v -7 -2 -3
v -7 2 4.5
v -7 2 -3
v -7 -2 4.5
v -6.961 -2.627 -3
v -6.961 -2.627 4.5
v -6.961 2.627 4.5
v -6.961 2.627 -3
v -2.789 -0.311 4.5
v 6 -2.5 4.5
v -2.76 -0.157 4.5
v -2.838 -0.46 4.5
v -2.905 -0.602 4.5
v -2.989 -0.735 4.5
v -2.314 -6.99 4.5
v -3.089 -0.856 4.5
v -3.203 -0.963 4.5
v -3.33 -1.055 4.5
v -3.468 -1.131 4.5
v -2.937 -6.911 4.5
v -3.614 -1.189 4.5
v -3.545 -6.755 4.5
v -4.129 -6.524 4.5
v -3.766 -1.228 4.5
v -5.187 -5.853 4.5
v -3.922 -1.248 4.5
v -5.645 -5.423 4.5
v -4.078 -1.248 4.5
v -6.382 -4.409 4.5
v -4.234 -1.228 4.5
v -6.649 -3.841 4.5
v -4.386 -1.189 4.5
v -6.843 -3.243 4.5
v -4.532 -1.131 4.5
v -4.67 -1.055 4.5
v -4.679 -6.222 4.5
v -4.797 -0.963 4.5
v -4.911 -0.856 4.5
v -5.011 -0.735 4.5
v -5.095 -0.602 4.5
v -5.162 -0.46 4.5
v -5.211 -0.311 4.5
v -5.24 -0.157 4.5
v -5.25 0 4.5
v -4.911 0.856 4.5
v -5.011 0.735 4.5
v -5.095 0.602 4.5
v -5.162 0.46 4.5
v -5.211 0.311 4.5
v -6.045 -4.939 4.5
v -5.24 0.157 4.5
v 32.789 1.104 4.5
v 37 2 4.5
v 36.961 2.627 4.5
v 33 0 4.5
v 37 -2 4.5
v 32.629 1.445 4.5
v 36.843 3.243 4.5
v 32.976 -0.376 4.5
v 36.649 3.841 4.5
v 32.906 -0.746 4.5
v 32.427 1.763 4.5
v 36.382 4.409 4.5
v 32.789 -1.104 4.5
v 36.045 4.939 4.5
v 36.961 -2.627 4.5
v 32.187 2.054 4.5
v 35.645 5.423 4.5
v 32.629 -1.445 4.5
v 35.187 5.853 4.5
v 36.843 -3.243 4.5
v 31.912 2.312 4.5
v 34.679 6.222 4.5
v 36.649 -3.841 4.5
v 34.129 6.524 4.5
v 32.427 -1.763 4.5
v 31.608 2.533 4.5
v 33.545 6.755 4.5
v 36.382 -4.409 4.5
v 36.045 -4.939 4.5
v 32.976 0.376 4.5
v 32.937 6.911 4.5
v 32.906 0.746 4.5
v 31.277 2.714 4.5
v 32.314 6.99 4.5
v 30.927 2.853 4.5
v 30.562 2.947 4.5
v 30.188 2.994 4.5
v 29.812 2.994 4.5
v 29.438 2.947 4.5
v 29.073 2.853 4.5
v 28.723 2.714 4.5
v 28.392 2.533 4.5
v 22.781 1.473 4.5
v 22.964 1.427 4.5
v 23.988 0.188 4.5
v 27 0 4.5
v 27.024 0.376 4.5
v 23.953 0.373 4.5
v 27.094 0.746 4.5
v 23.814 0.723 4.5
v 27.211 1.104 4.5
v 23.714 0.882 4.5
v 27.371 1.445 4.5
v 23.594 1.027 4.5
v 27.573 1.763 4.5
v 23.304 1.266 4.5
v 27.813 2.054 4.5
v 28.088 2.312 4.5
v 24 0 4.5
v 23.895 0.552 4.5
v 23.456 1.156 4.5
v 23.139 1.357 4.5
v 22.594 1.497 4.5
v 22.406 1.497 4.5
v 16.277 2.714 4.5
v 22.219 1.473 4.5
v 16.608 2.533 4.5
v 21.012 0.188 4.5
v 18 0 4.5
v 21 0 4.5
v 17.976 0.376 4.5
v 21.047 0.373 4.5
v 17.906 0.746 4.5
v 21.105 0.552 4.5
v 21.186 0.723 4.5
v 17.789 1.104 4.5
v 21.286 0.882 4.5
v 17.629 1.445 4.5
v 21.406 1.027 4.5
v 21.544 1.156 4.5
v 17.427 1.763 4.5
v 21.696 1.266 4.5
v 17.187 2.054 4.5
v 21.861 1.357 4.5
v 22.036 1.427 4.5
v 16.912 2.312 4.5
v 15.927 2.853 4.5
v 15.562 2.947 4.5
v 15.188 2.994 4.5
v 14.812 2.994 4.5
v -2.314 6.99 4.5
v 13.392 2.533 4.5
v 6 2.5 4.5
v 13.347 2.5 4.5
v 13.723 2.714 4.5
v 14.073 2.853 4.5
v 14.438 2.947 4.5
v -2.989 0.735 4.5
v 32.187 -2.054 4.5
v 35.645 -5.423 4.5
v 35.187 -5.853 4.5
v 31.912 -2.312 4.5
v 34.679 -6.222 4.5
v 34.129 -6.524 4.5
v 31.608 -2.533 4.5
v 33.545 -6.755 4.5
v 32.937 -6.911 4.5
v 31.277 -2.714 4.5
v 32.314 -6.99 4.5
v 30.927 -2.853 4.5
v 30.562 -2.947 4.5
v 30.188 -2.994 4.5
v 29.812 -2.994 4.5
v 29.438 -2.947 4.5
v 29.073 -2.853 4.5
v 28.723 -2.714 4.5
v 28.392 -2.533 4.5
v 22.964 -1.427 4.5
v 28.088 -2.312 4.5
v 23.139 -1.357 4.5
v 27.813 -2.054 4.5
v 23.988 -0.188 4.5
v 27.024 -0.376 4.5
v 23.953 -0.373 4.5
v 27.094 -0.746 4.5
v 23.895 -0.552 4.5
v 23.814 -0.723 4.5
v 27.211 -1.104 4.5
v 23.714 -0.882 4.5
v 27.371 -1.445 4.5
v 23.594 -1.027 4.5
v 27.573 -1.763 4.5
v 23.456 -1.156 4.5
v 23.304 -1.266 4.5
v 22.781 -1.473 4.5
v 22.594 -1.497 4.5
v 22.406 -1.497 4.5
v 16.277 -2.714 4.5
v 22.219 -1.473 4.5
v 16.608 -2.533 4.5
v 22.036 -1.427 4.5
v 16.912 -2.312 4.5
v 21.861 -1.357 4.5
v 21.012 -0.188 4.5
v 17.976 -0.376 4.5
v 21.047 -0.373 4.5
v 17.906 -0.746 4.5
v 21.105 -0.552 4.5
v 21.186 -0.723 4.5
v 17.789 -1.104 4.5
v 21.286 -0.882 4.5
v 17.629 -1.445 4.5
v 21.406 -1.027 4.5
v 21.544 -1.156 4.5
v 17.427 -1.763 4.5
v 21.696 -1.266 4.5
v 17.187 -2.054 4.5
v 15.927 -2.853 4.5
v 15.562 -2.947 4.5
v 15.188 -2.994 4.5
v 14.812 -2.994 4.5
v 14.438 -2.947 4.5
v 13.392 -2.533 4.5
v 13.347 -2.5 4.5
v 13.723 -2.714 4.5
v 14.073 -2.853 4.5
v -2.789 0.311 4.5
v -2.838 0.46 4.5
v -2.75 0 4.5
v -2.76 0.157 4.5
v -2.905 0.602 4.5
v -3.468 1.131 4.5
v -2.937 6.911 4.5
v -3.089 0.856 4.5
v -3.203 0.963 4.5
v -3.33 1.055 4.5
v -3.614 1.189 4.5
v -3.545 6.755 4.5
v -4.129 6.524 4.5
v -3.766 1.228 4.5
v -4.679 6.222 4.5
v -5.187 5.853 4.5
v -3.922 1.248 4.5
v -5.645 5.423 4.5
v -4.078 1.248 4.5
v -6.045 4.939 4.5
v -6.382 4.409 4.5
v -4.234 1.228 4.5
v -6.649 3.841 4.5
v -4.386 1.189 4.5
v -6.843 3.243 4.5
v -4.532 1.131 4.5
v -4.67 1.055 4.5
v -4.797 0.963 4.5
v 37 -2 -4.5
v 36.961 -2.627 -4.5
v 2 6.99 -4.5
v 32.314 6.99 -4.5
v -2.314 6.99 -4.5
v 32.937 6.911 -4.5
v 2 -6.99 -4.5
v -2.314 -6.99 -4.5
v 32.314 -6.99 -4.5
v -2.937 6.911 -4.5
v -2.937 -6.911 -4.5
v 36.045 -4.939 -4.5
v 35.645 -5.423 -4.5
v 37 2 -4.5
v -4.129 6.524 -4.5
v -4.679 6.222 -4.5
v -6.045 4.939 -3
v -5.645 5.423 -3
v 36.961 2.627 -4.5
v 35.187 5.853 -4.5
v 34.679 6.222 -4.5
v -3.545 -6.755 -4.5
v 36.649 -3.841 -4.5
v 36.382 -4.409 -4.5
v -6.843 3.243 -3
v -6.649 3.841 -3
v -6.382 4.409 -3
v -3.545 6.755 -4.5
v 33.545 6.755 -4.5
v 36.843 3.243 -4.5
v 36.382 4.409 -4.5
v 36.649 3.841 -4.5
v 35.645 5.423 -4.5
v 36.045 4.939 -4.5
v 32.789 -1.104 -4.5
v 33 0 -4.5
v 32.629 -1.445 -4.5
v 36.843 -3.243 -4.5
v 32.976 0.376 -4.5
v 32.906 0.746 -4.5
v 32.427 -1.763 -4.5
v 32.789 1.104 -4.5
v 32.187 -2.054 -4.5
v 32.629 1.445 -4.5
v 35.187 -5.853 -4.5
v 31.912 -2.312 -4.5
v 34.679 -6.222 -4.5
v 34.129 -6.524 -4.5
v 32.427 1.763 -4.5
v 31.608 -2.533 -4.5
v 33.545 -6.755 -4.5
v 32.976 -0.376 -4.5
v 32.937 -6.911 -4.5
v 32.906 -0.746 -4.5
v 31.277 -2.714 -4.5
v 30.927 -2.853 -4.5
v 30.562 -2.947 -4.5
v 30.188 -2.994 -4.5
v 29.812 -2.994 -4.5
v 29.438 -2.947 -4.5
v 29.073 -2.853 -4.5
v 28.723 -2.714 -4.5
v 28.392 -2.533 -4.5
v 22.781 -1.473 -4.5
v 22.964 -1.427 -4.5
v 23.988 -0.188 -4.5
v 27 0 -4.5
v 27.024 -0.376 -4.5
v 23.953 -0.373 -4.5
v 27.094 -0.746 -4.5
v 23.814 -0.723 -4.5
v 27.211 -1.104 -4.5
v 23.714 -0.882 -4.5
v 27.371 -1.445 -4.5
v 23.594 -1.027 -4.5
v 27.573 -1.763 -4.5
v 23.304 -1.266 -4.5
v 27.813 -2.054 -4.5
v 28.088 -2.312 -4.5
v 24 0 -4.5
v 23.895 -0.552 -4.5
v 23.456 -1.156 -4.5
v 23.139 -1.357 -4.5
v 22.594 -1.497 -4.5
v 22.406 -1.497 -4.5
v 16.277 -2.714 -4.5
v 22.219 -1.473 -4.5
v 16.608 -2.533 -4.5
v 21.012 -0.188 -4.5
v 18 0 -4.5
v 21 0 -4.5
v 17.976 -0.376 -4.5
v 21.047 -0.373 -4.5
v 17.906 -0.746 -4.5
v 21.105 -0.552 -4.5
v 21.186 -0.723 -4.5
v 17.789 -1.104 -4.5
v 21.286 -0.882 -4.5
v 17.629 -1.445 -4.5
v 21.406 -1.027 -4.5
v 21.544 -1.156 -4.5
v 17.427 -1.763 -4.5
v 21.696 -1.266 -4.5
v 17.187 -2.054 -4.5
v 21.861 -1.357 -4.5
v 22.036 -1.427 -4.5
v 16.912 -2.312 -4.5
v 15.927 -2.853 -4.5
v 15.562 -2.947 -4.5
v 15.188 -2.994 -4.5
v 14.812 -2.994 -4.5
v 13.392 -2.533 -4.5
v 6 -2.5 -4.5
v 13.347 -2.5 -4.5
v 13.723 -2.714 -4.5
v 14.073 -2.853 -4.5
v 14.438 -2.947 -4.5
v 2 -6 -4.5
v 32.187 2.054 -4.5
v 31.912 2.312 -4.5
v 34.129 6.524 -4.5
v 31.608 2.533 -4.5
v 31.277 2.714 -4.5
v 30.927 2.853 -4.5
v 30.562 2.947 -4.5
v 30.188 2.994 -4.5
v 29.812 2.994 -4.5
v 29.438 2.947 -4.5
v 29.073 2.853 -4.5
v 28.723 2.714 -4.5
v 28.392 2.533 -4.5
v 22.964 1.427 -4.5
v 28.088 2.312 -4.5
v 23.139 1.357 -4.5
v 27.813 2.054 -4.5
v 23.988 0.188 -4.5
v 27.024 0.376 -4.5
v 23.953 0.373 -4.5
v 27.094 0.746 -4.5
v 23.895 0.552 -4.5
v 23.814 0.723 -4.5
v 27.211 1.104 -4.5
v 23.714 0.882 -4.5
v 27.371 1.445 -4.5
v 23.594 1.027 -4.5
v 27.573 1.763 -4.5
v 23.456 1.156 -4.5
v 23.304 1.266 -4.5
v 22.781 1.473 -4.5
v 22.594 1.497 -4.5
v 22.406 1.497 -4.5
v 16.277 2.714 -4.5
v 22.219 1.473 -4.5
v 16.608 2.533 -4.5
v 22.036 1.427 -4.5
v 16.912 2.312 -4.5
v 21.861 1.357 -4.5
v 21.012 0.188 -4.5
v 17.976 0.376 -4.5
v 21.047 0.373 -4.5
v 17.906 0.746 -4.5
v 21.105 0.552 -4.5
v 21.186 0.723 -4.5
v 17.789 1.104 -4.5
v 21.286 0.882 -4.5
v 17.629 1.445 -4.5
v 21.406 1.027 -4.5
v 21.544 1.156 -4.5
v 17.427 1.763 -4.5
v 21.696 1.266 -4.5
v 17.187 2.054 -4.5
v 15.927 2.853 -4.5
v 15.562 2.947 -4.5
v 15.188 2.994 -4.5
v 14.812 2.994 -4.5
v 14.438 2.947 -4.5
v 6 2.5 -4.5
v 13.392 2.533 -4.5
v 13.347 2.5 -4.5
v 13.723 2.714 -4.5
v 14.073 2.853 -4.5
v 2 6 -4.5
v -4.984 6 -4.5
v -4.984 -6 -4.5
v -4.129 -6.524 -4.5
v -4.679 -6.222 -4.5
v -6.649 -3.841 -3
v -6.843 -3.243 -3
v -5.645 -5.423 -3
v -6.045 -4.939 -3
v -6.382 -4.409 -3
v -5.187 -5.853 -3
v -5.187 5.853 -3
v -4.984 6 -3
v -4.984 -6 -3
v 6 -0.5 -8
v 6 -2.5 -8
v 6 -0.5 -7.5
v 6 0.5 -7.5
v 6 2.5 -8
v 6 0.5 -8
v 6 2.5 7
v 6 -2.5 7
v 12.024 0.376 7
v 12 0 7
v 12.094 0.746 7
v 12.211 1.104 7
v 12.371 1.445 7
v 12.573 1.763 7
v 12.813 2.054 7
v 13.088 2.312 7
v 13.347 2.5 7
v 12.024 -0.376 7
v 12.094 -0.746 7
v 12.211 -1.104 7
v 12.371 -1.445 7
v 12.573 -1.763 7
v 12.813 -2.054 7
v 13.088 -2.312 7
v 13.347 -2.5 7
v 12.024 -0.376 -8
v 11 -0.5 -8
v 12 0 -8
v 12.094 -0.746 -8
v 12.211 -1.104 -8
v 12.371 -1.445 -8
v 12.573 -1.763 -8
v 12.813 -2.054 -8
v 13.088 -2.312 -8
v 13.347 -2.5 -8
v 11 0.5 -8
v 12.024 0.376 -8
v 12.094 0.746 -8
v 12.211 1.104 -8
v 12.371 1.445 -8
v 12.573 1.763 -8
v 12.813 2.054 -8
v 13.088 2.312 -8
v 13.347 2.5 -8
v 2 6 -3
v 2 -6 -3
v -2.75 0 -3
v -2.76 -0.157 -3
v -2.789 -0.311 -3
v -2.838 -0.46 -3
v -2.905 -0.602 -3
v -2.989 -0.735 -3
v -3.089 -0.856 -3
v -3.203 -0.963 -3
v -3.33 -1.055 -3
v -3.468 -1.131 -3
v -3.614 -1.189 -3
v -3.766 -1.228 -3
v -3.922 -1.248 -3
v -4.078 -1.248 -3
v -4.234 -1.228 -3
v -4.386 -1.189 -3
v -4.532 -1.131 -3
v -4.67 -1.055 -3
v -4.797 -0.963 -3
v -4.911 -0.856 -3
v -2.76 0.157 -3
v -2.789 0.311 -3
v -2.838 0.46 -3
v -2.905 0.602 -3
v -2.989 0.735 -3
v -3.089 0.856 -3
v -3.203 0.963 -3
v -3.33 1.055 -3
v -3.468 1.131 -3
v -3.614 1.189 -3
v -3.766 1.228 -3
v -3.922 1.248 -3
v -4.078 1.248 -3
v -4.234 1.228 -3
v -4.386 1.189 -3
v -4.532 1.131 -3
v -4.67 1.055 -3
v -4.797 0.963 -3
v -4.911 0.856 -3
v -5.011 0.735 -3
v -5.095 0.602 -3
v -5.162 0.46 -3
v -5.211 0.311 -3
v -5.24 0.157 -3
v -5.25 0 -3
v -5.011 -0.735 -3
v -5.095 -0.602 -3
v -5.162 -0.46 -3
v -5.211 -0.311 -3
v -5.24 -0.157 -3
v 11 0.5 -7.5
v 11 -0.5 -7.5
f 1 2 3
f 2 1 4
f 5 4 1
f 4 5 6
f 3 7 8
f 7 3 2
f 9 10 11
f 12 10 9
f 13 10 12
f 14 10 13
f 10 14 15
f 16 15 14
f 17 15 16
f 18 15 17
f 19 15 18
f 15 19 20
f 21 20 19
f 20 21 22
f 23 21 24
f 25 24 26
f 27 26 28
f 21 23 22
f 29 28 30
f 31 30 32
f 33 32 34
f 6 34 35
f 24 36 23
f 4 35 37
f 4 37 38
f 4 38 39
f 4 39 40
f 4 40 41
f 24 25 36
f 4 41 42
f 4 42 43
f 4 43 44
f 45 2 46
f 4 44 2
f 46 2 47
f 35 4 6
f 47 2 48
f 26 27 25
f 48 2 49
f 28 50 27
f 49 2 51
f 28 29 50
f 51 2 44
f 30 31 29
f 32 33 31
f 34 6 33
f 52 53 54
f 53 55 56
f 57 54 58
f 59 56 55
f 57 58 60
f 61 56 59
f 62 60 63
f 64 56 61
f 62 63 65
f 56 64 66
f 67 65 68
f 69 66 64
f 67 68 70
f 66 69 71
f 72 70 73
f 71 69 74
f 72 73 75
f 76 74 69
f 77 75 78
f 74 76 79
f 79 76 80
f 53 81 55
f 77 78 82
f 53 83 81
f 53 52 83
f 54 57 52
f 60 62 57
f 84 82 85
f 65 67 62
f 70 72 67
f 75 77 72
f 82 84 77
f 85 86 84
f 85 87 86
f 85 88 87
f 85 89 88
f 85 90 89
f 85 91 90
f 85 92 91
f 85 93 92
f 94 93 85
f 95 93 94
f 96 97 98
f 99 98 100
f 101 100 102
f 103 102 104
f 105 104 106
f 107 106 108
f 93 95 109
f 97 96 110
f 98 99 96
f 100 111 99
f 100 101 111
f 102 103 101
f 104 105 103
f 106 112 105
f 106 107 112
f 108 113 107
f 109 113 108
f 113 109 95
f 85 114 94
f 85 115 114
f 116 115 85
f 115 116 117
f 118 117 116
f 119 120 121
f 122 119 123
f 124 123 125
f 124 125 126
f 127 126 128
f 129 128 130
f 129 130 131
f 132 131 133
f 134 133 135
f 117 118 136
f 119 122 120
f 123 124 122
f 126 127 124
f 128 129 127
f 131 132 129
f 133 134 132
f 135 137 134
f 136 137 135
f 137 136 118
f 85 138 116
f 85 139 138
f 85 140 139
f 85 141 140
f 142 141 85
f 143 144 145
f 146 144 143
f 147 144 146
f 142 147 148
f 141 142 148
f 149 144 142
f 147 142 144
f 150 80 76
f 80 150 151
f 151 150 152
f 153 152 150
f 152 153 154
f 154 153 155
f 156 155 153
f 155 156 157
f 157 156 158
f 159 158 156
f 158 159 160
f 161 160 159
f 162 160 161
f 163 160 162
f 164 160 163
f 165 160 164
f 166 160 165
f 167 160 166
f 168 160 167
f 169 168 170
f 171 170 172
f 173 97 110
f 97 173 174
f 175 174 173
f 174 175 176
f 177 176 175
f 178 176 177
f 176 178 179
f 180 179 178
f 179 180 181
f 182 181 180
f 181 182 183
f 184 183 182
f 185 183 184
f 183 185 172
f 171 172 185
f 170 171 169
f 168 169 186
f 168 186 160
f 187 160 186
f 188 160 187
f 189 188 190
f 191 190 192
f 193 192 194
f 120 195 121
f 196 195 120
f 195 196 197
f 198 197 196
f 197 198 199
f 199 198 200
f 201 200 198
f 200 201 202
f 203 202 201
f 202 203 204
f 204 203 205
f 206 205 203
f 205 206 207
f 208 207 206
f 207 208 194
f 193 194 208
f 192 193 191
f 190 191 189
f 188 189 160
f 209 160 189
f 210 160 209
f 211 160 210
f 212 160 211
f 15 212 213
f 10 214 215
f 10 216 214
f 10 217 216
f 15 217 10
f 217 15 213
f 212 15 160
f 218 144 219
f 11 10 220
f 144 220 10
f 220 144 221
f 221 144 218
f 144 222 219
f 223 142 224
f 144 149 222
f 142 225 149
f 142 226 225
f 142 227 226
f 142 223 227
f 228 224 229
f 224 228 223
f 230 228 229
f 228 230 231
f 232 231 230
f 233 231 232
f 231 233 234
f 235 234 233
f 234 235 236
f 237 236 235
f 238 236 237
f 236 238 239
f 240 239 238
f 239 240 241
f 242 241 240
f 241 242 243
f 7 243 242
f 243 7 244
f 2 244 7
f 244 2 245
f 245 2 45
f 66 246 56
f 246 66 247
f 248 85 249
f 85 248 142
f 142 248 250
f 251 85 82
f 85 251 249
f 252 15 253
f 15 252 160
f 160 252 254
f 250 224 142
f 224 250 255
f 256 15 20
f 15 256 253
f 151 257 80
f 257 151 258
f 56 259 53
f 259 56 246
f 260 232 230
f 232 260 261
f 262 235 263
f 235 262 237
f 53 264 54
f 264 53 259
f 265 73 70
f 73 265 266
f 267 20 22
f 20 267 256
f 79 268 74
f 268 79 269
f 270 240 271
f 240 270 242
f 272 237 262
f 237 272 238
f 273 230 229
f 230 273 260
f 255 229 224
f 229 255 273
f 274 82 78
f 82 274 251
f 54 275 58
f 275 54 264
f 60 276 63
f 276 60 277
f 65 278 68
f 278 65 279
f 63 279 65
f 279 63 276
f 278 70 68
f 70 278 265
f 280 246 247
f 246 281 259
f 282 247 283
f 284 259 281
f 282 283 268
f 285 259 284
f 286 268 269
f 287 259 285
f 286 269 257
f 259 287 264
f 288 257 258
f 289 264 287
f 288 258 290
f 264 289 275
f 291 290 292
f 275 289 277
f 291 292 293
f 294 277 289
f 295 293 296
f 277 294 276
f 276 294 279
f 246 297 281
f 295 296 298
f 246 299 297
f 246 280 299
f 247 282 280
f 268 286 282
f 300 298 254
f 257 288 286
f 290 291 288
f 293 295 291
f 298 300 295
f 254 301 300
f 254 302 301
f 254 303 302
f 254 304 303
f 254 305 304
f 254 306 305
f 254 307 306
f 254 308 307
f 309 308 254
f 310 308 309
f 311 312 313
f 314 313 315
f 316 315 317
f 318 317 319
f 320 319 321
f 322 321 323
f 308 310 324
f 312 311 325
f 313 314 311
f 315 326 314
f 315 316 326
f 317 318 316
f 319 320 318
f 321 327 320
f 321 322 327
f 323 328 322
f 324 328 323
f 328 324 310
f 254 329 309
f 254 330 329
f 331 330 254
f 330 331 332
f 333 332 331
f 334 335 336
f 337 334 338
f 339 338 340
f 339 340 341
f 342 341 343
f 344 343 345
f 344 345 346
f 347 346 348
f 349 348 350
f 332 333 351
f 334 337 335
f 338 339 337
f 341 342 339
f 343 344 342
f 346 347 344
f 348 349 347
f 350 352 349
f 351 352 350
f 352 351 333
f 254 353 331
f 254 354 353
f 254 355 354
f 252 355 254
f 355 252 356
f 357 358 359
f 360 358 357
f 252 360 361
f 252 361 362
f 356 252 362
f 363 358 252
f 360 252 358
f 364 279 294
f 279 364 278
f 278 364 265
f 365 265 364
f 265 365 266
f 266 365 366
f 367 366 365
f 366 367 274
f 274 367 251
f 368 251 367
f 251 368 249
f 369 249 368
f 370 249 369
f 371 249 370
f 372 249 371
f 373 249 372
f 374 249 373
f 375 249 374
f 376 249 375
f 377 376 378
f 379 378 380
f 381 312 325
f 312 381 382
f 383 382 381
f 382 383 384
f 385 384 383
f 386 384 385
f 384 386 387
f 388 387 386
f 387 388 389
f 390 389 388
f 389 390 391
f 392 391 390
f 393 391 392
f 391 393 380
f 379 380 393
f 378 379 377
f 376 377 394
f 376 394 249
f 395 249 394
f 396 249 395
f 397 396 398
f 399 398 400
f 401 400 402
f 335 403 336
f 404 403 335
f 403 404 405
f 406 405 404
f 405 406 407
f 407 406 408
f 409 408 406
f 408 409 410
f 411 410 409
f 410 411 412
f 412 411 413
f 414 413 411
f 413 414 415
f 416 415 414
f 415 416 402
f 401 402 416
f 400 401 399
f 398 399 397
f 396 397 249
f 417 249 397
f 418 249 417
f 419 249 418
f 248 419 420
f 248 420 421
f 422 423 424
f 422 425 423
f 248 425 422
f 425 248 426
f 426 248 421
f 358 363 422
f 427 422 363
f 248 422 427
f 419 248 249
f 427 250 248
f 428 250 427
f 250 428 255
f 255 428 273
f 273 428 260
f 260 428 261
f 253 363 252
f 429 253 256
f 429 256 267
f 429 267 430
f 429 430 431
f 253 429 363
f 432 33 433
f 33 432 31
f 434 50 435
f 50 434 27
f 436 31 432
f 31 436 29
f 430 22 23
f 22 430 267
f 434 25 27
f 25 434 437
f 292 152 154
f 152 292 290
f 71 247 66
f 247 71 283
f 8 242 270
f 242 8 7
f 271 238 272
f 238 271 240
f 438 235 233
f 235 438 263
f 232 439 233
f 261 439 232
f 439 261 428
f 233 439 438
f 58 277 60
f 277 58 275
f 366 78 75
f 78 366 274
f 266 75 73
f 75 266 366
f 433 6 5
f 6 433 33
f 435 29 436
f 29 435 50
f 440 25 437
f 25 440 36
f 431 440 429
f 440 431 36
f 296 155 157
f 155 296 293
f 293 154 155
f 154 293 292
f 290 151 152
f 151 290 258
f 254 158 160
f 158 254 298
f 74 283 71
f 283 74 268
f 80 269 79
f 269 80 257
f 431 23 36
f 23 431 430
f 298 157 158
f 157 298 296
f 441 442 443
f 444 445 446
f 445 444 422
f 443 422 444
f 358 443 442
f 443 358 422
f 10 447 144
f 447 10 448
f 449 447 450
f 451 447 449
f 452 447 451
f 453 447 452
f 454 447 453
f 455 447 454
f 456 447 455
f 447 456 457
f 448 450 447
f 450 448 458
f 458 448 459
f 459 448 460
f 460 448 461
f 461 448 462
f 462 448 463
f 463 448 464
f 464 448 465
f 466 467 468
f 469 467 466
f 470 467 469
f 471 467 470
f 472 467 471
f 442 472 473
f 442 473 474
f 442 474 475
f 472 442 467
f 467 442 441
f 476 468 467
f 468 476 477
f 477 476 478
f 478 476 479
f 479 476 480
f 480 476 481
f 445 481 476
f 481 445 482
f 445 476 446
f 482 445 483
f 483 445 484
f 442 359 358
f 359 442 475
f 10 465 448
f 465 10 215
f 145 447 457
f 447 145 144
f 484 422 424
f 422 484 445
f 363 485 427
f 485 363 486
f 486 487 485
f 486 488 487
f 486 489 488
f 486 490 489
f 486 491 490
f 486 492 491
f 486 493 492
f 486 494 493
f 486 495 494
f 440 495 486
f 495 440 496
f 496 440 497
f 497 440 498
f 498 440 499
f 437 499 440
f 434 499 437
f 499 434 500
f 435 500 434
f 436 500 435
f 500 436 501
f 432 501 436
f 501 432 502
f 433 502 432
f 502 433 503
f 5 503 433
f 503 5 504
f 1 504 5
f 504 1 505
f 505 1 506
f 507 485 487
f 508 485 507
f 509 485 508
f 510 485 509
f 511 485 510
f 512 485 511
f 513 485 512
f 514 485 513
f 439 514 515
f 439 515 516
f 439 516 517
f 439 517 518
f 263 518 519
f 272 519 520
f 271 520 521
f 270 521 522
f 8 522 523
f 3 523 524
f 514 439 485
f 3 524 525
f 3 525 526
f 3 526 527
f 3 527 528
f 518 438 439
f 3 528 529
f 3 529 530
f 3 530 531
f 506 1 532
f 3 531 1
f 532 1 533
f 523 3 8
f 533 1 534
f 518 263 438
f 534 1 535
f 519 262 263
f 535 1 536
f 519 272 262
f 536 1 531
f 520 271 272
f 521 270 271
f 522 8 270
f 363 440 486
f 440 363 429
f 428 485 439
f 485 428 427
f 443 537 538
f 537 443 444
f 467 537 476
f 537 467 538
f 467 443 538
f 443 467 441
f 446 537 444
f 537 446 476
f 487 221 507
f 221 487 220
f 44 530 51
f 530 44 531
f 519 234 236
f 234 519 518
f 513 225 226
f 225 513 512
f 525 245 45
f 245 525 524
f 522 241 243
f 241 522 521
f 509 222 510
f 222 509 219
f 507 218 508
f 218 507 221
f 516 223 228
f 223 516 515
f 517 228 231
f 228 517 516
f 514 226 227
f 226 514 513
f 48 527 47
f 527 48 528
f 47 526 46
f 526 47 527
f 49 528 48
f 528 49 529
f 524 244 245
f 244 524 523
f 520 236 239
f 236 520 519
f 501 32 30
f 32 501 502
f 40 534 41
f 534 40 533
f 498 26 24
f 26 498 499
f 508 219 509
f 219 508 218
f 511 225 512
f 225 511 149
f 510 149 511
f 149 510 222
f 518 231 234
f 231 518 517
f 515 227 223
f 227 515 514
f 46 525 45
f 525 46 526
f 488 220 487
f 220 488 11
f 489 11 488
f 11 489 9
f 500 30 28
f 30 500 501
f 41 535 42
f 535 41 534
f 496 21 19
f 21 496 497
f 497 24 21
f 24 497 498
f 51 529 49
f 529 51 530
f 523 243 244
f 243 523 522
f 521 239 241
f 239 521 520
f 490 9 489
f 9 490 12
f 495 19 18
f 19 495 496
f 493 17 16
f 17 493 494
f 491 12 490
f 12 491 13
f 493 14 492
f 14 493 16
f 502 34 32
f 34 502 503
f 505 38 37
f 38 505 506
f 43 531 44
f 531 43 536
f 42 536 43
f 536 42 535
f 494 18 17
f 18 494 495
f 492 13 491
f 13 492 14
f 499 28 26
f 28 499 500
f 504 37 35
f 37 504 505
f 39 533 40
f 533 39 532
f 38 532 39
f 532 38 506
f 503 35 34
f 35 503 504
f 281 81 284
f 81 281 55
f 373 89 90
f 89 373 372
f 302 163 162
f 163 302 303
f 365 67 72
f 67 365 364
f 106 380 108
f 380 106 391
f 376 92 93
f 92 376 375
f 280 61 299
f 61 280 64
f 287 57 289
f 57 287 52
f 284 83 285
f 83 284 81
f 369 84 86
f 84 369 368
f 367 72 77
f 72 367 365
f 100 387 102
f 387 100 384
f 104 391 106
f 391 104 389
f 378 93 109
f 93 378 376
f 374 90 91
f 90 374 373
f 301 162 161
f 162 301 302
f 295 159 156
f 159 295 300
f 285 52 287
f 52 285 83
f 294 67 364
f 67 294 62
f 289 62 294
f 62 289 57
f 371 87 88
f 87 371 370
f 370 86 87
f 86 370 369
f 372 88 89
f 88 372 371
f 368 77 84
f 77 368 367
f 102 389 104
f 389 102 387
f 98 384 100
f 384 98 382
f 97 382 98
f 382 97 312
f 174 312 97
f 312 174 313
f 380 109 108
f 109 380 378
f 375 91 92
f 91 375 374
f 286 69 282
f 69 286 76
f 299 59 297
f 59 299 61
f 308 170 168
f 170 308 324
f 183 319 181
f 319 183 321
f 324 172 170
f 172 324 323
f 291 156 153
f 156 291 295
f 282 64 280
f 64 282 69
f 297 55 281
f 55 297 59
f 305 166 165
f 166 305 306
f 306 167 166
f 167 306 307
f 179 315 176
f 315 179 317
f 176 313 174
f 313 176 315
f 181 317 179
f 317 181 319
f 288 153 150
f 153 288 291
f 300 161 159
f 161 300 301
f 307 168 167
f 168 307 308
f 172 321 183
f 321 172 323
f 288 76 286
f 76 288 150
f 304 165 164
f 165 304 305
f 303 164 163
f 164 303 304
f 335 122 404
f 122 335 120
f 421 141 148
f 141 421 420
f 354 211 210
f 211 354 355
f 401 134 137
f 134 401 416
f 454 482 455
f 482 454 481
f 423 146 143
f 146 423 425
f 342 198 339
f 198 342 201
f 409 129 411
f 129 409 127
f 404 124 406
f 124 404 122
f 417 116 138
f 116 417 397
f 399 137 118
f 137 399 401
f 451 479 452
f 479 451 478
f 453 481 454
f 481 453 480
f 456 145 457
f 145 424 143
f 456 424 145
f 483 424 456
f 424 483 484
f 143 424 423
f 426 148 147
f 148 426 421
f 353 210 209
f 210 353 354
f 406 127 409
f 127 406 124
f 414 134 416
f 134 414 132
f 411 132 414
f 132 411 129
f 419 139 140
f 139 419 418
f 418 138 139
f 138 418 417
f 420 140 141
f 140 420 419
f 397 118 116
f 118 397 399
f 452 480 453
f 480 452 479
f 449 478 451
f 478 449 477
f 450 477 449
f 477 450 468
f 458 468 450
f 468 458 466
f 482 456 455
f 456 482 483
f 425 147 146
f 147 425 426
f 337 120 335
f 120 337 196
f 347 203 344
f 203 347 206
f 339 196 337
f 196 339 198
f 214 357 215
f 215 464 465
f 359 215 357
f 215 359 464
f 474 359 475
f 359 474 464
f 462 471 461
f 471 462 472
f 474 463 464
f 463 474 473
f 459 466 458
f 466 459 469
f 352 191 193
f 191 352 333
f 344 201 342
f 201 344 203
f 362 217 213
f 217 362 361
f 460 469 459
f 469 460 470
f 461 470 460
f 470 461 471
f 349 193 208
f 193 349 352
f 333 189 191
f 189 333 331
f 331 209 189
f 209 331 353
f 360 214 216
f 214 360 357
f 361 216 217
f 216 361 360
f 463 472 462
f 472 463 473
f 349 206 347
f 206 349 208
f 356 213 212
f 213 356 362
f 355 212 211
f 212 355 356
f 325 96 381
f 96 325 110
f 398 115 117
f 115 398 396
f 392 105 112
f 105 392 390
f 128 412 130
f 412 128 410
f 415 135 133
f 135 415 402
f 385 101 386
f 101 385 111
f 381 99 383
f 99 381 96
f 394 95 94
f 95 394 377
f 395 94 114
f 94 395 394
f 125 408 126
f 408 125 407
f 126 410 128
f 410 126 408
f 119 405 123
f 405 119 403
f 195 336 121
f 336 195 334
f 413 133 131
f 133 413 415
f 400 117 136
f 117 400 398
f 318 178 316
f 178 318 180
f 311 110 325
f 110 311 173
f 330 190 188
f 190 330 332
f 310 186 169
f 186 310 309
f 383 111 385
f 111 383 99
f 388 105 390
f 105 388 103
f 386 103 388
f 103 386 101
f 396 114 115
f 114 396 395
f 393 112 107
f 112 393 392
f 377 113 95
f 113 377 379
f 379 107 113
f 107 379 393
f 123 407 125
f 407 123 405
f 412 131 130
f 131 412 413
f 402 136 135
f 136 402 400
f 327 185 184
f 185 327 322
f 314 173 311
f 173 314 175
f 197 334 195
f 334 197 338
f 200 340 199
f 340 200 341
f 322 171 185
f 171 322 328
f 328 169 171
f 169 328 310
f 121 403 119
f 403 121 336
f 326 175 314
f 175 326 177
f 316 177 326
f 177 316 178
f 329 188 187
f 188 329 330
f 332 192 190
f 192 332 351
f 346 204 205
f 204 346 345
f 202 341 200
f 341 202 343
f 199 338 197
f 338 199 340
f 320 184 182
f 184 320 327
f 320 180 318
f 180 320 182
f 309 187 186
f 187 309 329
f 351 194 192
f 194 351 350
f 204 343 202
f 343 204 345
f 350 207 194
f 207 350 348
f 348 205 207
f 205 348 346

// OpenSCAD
$fn = 50;


difference() {
	union() {
		translate(v = [15.0000000000, 0, -4.5000000000]) {
			hull() {
				translate(v = [-17.0000000000, 2.0000000000, 0]) {
					cylinder(h = 9, r = 5);
				}
				translate(v = [17.0000000000, 2.0000000000, 0]) {
					cylinder(h = 9, r = 5);
				}
				translate(v = [-17.0000000000, -2.0000000000, 0]) {
					cylinder(h = 9, r = 5);
				}
				translate(v = [17.0000000000, -2.0000000000, 0]) {
					cylinder(h = 9, r = 5);
				}
			}
		}
		translate(v = [6.0000000000, -2.5000000000, -8]) {
			cube(size = [10, 5, 15]);
		}
	}
	union() {
		translate(v = [-10, 0, -12.5000000000]) {
			rotate(a = [0, 90, 0]) {
				difference() {
					union() {
						translate(v = [-8.0000000000, -8.0000000000, 0]) {
							cube(size = [16, 16, 12]);
						}
						translate(v = [5.2500000000, 6.7500000000, -4]) {
							cube(size = [3, 1.5000000000, 4]);
						}
						translate(v = [-8.2500000000, 6.7500000000, -4]) {
							cube(size = [3, 1.5000000000, 4]);
						}
						translate(v = [5.2500000000, -8.2500000000, -4]) {
							cube(size = [3, 1.5000000000, 4]);
						}
						translate(v = [-8.2500000000, -8.2500000000, -4]) {
							cube(size = [3, 1.5000000000, 4]);
						}
						translate(v = [4.5000000000, -9.5000000000, 0]) {
							cube(size = [2, 19, 3.5000000000]);
						}
						translate(v = [-6.5000000000, -9.5000000000, 0]) {
							cube(size = [2, 19, 3.5000000000]);
						}
						translate(v = [8.0000000000, -6.0000000000, -4]) {
							cube(size = [4, 12, 16]);
						}
						translate(v = [-9.5000000000, -6.0000000000, -4]) {
							cube(size = [1.5000000000, 12, 16]);
						}
						translate(v = [-5.0000000000, -0.5000000000, 12]) {
							cube(size = [10, 1, 9]);
						}
					}
					union();
				}
			}
		}
		translate(v = [-4, 0, -50.0000000000]) {
			cylinder(h = 100, r = 1.2500000000);
		}
		translate(v = [30.0000000000, 0.0000000000, -50.0000000000]) {
			cylinder(h = 100, r = 3.0000000000);
		}
		translate(v = [15.0000000000, 0.0000000000, -50.0000000000]) {
			cylinder(h = 100, r = 3.0000000000);
		}
		translate(v = [22.5000000000, 0.0000000000, -50.0000000000]) {
			cylinder(h = 100, r = 1.5000000000);
		}
	}
}
